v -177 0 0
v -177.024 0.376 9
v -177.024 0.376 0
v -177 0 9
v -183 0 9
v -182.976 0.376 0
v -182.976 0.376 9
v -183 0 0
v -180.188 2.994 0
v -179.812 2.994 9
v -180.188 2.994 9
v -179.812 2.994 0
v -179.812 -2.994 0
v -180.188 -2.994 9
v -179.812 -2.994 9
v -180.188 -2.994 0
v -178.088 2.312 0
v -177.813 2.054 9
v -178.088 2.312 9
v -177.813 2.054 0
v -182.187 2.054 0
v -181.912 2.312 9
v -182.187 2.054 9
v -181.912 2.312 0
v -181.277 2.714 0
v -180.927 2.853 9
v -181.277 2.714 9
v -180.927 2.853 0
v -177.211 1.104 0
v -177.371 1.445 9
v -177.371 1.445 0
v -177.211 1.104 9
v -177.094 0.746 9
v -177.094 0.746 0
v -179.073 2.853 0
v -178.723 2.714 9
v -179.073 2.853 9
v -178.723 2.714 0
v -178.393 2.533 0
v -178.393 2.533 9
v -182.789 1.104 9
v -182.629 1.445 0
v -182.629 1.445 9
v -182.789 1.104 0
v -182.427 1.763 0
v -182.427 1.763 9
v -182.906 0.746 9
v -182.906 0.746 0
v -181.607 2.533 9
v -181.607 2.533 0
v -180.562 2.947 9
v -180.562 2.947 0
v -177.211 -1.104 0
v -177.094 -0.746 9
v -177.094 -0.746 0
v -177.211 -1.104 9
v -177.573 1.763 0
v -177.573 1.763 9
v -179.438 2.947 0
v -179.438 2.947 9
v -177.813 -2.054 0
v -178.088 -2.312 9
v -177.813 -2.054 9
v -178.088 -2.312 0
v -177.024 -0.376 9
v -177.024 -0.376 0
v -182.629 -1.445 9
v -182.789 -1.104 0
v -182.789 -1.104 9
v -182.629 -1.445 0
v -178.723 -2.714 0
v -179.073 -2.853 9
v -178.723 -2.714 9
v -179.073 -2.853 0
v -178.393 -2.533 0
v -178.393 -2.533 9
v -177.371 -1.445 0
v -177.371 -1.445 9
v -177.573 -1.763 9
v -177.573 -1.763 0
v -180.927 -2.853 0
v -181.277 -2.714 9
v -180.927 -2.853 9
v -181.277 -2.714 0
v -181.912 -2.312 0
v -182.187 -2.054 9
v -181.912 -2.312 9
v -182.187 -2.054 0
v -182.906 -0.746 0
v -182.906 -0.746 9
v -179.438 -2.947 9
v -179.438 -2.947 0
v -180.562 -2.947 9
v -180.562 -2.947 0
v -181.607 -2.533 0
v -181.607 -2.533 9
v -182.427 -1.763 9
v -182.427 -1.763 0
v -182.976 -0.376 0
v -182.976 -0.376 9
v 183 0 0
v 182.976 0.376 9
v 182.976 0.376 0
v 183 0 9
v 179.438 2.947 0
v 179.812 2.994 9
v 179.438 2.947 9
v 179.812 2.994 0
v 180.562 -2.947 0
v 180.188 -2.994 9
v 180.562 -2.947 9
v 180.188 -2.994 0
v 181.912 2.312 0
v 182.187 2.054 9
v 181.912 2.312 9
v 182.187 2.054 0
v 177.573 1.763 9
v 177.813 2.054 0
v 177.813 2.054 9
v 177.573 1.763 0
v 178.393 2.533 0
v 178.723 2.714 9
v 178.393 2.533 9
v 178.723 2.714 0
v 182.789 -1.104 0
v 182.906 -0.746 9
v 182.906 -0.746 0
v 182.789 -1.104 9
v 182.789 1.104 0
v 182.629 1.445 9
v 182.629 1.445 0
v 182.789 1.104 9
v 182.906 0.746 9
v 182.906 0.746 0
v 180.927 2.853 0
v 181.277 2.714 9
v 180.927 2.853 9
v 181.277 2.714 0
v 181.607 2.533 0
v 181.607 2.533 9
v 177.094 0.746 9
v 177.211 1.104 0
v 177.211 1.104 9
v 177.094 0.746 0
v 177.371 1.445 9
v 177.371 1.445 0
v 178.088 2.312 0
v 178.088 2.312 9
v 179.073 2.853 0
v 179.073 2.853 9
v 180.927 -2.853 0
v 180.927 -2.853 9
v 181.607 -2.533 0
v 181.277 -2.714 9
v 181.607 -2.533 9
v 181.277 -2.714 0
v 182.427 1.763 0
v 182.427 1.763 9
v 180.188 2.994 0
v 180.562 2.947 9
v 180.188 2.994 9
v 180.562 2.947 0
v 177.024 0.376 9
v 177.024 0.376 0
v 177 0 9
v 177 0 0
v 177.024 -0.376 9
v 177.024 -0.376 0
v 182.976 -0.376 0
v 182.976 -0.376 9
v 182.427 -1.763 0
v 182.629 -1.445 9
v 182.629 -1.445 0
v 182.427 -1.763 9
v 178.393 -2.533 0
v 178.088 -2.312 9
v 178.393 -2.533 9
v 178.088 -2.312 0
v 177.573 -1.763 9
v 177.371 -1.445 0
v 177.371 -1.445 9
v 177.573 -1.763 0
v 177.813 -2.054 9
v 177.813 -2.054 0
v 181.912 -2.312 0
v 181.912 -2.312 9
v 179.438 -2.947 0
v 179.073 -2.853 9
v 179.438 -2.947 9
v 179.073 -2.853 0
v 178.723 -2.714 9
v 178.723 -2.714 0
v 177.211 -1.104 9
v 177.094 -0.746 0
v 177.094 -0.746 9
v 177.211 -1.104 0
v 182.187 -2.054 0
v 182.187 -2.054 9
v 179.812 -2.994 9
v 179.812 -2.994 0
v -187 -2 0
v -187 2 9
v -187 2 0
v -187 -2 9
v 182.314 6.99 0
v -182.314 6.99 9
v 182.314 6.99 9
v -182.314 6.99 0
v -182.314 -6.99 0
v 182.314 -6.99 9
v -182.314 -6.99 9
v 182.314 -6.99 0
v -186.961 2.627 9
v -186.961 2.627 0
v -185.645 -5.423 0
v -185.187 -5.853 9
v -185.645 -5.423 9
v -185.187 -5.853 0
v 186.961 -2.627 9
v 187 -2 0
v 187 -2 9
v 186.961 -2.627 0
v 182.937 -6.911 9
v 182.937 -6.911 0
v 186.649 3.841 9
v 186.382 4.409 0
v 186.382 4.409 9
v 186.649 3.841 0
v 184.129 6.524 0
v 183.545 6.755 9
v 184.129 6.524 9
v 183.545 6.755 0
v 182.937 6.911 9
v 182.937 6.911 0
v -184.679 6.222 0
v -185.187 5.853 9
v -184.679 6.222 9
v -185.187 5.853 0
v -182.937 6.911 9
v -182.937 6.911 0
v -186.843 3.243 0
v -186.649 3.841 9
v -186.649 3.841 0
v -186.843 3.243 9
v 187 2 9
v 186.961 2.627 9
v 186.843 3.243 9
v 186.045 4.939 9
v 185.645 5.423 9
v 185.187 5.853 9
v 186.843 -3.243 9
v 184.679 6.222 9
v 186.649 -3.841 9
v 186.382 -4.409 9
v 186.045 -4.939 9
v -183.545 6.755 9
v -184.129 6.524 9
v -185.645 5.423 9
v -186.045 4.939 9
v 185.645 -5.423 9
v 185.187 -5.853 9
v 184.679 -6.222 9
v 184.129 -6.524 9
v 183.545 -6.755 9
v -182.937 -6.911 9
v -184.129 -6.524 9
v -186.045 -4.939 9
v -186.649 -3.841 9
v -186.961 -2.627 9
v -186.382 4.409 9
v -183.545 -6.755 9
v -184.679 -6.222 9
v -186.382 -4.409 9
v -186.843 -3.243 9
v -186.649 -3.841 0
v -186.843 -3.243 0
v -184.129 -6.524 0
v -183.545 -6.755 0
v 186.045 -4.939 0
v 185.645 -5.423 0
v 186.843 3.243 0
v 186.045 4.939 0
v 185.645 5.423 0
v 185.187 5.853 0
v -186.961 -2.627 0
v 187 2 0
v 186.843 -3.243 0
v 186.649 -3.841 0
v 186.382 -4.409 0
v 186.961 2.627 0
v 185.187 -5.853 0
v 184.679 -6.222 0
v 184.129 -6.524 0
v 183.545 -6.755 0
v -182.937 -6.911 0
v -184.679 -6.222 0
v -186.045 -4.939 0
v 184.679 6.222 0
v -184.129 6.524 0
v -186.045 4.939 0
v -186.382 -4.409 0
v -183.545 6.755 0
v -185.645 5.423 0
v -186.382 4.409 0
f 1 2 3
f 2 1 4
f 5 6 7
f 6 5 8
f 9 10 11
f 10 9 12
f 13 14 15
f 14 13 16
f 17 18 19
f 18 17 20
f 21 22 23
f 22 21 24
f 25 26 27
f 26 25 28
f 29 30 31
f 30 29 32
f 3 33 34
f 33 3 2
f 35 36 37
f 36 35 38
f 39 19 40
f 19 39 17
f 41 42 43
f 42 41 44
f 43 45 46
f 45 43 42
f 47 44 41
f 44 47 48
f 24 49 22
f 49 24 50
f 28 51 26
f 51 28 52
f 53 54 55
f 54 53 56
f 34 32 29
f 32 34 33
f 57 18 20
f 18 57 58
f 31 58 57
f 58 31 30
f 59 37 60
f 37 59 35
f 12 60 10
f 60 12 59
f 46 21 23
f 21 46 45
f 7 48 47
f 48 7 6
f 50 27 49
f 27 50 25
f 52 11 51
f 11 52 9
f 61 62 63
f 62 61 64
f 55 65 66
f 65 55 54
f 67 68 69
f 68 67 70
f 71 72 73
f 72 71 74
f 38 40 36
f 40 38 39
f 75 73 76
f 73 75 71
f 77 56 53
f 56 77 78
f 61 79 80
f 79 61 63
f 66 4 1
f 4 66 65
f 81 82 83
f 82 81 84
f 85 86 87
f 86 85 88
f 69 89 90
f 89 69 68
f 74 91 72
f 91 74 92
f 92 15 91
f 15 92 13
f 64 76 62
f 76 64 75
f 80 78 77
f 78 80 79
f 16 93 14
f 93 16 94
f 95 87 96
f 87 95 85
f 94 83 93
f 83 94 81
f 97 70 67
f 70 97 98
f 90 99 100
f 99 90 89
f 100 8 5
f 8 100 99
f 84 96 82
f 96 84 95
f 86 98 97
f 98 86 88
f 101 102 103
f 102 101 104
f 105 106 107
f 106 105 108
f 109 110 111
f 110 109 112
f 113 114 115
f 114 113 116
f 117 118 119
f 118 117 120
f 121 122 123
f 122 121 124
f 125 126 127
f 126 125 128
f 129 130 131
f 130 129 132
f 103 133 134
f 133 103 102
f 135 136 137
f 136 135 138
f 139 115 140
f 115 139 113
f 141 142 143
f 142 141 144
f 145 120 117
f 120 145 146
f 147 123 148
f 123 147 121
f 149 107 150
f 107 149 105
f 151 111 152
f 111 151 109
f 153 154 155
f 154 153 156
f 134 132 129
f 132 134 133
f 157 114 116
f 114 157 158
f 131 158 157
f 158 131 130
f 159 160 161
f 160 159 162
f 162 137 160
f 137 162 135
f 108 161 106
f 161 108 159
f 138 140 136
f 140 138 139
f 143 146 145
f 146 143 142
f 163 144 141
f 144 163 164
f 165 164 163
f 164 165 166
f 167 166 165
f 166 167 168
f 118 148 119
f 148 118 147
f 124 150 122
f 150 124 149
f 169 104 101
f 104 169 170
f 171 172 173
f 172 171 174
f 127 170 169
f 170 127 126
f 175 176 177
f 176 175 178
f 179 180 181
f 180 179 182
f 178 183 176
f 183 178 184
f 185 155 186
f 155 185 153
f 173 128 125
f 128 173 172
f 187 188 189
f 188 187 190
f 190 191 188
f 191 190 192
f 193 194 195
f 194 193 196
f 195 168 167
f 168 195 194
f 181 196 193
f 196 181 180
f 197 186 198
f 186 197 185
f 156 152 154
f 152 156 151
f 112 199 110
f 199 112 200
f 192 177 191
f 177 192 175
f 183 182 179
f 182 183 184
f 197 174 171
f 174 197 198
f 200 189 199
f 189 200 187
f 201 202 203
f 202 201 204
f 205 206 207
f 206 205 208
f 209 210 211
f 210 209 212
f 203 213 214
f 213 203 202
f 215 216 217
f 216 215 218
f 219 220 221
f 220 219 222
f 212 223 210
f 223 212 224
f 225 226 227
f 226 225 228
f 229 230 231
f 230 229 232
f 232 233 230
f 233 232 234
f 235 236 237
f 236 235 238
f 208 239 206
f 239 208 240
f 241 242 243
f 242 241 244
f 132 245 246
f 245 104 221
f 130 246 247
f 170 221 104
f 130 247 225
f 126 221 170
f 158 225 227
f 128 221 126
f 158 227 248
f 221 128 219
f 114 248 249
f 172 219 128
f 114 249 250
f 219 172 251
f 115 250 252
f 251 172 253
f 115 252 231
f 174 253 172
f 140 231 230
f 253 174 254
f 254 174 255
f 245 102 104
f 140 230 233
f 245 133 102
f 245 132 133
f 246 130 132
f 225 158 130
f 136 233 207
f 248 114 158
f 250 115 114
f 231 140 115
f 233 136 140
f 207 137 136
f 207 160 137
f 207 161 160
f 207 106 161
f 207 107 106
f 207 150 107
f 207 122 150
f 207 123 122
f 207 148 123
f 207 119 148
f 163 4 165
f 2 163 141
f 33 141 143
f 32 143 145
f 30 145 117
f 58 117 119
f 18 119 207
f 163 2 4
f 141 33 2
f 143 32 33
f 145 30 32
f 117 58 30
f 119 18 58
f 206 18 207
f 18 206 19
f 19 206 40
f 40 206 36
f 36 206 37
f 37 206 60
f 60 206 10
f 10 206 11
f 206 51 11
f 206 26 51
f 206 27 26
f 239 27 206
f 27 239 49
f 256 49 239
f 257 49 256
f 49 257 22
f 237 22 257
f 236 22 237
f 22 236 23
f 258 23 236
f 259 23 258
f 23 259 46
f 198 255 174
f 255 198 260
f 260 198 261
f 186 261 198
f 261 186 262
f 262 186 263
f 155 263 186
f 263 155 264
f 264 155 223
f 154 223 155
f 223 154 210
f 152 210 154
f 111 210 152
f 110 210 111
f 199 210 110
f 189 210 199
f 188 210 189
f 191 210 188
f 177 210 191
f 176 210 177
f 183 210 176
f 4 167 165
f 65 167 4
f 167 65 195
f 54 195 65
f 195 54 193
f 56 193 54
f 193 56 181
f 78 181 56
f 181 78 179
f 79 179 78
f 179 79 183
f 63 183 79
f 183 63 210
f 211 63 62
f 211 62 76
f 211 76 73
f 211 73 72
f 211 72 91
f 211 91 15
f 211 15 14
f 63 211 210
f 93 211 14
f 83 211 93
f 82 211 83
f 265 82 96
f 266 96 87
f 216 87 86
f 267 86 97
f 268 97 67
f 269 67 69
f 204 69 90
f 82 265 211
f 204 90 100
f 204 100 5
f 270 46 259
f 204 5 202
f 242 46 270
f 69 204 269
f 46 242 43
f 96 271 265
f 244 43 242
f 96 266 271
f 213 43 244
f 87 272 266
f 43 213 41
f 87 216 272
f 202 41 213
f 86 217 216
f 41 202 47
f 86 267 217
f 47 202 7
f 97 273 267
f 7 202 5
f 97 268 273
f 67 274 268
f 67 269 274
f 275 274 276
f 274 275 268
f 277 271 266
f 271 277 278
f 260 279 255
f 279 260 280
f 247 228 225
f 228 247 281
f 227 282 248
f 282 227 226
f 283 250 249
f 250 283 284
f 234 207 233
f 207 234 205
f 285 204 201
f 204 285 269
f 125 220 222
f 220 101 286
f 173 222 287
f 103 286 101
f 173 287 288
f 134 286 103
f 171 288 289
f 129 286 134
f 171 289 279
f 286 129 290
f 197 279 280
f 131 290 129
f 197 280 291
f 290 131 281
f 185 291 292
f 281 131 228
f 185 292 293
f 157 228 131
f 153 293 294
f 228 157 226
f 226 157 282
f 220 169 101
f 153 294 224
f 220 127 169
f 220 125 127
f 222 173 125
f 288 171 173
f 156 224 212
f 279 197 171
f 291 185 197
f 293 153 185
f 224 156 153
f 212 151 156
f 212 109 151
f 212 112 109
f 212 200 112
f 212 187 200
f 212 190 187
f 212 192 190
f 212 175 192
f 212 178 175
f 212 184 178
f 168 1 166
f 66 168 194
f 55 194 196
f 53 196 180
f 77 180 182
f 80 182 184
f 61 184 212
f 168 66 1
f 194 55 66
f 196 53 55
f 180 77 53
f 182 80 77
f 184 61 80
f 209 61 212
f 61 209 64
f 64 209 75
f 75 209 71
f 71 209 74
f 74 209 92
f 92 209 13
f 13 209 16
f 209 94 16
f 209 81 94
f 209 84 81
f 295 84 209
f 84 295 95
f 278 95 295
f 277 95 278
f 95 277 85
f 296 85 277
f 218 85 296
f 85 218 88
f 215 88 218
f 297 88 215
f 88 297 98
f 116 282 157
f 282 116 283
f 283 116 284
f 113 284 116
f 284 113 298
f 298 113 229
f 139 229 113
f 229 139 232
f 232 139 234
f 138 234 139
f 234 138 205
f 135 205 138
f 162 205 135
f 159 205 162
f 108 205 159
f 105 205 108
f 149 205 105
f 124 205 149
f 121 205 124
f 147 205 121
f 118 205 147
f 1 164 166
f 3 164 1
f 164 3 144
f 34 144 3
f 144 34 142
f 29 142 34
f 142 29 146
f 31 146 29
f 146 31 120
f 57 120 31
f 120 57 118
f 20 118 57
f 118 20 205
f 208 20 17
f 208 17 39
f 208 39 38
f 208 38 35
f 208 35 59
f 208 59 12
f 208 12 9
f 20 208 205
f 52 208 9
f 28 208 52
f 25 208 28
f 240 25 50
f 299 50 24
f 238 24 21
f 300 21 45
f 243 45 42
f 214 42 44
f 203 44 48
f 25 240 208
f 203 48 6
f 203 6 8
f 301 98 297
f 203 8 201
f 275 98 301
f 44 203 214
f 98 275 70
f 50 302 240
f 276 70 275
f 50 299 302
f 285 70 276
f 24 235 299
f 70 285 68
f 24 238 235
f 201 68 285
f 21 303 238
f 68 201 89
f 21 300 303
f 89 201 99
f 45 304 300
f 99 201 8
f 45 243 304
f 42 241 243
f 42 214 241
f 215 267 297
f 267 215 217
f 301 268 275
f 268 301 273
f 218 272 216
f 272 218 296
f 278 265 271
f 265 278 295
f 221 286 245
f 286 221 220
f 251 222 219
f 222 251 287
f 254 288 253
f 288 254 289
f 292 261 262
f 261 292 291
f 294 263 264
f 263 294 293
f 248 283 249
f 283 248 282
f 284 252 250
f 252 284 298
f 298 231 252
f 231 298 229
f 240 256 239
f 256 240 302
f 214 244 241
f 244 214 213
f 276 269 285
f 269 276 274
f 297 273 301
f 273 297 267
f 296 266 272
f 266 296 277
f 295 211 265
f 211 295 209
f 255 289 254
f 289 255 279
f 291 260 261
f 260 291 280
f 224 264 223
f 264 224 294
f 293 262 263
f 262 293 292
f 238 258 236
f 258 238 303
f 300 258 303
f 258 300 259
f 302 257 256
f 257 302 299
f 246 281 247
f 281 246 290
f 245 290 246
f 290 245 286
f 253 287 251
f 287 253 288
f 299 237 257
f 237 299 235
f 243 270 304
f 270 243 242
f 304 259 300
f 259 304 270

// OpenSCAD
$fn = 50;


difference() {
	union() {
		hull() {
			translate(v = [-182.0000000000, 2.0000000000, 0]) {
				cylinder(h = 9, r = 5);
			}
			translate(v = [182.0000000000, 2.0000000000, 0]) {
				cylinder(h = 9, r = 5);
			}
			translate(v = [-182.0000000000, -2.0000000000, 0]) {
				cylinder(h = 9, r = 5);
			}
			translate(v = [182.0000000000, -2.0000000000, 0]) {
				cylinder(h = 9, r = 5);
			}
		}
	}
	union() {
		translate(v = [-180.0000000000, 0.0000000000, -100.0000000000]) {
			cylinder(h = 200, r = 3.0000000000);
		}
		translate(v = [-180.0000000000, 0.0000000000, -100.0000000000]) {
			cylinder(h = 200, r = 3.0000000000);
		}
		translate(v = [180.0000000000, 0.0000000000, -100.0000000000]) {
			cylinder(h = 200, r = 3.0000000000);
		}
		translate(v = [180.0000000000, 0.0000000000, -100.0000000000]) {
			cylinder(h = 200, r = 3.0000000000);
		}
	}
}
